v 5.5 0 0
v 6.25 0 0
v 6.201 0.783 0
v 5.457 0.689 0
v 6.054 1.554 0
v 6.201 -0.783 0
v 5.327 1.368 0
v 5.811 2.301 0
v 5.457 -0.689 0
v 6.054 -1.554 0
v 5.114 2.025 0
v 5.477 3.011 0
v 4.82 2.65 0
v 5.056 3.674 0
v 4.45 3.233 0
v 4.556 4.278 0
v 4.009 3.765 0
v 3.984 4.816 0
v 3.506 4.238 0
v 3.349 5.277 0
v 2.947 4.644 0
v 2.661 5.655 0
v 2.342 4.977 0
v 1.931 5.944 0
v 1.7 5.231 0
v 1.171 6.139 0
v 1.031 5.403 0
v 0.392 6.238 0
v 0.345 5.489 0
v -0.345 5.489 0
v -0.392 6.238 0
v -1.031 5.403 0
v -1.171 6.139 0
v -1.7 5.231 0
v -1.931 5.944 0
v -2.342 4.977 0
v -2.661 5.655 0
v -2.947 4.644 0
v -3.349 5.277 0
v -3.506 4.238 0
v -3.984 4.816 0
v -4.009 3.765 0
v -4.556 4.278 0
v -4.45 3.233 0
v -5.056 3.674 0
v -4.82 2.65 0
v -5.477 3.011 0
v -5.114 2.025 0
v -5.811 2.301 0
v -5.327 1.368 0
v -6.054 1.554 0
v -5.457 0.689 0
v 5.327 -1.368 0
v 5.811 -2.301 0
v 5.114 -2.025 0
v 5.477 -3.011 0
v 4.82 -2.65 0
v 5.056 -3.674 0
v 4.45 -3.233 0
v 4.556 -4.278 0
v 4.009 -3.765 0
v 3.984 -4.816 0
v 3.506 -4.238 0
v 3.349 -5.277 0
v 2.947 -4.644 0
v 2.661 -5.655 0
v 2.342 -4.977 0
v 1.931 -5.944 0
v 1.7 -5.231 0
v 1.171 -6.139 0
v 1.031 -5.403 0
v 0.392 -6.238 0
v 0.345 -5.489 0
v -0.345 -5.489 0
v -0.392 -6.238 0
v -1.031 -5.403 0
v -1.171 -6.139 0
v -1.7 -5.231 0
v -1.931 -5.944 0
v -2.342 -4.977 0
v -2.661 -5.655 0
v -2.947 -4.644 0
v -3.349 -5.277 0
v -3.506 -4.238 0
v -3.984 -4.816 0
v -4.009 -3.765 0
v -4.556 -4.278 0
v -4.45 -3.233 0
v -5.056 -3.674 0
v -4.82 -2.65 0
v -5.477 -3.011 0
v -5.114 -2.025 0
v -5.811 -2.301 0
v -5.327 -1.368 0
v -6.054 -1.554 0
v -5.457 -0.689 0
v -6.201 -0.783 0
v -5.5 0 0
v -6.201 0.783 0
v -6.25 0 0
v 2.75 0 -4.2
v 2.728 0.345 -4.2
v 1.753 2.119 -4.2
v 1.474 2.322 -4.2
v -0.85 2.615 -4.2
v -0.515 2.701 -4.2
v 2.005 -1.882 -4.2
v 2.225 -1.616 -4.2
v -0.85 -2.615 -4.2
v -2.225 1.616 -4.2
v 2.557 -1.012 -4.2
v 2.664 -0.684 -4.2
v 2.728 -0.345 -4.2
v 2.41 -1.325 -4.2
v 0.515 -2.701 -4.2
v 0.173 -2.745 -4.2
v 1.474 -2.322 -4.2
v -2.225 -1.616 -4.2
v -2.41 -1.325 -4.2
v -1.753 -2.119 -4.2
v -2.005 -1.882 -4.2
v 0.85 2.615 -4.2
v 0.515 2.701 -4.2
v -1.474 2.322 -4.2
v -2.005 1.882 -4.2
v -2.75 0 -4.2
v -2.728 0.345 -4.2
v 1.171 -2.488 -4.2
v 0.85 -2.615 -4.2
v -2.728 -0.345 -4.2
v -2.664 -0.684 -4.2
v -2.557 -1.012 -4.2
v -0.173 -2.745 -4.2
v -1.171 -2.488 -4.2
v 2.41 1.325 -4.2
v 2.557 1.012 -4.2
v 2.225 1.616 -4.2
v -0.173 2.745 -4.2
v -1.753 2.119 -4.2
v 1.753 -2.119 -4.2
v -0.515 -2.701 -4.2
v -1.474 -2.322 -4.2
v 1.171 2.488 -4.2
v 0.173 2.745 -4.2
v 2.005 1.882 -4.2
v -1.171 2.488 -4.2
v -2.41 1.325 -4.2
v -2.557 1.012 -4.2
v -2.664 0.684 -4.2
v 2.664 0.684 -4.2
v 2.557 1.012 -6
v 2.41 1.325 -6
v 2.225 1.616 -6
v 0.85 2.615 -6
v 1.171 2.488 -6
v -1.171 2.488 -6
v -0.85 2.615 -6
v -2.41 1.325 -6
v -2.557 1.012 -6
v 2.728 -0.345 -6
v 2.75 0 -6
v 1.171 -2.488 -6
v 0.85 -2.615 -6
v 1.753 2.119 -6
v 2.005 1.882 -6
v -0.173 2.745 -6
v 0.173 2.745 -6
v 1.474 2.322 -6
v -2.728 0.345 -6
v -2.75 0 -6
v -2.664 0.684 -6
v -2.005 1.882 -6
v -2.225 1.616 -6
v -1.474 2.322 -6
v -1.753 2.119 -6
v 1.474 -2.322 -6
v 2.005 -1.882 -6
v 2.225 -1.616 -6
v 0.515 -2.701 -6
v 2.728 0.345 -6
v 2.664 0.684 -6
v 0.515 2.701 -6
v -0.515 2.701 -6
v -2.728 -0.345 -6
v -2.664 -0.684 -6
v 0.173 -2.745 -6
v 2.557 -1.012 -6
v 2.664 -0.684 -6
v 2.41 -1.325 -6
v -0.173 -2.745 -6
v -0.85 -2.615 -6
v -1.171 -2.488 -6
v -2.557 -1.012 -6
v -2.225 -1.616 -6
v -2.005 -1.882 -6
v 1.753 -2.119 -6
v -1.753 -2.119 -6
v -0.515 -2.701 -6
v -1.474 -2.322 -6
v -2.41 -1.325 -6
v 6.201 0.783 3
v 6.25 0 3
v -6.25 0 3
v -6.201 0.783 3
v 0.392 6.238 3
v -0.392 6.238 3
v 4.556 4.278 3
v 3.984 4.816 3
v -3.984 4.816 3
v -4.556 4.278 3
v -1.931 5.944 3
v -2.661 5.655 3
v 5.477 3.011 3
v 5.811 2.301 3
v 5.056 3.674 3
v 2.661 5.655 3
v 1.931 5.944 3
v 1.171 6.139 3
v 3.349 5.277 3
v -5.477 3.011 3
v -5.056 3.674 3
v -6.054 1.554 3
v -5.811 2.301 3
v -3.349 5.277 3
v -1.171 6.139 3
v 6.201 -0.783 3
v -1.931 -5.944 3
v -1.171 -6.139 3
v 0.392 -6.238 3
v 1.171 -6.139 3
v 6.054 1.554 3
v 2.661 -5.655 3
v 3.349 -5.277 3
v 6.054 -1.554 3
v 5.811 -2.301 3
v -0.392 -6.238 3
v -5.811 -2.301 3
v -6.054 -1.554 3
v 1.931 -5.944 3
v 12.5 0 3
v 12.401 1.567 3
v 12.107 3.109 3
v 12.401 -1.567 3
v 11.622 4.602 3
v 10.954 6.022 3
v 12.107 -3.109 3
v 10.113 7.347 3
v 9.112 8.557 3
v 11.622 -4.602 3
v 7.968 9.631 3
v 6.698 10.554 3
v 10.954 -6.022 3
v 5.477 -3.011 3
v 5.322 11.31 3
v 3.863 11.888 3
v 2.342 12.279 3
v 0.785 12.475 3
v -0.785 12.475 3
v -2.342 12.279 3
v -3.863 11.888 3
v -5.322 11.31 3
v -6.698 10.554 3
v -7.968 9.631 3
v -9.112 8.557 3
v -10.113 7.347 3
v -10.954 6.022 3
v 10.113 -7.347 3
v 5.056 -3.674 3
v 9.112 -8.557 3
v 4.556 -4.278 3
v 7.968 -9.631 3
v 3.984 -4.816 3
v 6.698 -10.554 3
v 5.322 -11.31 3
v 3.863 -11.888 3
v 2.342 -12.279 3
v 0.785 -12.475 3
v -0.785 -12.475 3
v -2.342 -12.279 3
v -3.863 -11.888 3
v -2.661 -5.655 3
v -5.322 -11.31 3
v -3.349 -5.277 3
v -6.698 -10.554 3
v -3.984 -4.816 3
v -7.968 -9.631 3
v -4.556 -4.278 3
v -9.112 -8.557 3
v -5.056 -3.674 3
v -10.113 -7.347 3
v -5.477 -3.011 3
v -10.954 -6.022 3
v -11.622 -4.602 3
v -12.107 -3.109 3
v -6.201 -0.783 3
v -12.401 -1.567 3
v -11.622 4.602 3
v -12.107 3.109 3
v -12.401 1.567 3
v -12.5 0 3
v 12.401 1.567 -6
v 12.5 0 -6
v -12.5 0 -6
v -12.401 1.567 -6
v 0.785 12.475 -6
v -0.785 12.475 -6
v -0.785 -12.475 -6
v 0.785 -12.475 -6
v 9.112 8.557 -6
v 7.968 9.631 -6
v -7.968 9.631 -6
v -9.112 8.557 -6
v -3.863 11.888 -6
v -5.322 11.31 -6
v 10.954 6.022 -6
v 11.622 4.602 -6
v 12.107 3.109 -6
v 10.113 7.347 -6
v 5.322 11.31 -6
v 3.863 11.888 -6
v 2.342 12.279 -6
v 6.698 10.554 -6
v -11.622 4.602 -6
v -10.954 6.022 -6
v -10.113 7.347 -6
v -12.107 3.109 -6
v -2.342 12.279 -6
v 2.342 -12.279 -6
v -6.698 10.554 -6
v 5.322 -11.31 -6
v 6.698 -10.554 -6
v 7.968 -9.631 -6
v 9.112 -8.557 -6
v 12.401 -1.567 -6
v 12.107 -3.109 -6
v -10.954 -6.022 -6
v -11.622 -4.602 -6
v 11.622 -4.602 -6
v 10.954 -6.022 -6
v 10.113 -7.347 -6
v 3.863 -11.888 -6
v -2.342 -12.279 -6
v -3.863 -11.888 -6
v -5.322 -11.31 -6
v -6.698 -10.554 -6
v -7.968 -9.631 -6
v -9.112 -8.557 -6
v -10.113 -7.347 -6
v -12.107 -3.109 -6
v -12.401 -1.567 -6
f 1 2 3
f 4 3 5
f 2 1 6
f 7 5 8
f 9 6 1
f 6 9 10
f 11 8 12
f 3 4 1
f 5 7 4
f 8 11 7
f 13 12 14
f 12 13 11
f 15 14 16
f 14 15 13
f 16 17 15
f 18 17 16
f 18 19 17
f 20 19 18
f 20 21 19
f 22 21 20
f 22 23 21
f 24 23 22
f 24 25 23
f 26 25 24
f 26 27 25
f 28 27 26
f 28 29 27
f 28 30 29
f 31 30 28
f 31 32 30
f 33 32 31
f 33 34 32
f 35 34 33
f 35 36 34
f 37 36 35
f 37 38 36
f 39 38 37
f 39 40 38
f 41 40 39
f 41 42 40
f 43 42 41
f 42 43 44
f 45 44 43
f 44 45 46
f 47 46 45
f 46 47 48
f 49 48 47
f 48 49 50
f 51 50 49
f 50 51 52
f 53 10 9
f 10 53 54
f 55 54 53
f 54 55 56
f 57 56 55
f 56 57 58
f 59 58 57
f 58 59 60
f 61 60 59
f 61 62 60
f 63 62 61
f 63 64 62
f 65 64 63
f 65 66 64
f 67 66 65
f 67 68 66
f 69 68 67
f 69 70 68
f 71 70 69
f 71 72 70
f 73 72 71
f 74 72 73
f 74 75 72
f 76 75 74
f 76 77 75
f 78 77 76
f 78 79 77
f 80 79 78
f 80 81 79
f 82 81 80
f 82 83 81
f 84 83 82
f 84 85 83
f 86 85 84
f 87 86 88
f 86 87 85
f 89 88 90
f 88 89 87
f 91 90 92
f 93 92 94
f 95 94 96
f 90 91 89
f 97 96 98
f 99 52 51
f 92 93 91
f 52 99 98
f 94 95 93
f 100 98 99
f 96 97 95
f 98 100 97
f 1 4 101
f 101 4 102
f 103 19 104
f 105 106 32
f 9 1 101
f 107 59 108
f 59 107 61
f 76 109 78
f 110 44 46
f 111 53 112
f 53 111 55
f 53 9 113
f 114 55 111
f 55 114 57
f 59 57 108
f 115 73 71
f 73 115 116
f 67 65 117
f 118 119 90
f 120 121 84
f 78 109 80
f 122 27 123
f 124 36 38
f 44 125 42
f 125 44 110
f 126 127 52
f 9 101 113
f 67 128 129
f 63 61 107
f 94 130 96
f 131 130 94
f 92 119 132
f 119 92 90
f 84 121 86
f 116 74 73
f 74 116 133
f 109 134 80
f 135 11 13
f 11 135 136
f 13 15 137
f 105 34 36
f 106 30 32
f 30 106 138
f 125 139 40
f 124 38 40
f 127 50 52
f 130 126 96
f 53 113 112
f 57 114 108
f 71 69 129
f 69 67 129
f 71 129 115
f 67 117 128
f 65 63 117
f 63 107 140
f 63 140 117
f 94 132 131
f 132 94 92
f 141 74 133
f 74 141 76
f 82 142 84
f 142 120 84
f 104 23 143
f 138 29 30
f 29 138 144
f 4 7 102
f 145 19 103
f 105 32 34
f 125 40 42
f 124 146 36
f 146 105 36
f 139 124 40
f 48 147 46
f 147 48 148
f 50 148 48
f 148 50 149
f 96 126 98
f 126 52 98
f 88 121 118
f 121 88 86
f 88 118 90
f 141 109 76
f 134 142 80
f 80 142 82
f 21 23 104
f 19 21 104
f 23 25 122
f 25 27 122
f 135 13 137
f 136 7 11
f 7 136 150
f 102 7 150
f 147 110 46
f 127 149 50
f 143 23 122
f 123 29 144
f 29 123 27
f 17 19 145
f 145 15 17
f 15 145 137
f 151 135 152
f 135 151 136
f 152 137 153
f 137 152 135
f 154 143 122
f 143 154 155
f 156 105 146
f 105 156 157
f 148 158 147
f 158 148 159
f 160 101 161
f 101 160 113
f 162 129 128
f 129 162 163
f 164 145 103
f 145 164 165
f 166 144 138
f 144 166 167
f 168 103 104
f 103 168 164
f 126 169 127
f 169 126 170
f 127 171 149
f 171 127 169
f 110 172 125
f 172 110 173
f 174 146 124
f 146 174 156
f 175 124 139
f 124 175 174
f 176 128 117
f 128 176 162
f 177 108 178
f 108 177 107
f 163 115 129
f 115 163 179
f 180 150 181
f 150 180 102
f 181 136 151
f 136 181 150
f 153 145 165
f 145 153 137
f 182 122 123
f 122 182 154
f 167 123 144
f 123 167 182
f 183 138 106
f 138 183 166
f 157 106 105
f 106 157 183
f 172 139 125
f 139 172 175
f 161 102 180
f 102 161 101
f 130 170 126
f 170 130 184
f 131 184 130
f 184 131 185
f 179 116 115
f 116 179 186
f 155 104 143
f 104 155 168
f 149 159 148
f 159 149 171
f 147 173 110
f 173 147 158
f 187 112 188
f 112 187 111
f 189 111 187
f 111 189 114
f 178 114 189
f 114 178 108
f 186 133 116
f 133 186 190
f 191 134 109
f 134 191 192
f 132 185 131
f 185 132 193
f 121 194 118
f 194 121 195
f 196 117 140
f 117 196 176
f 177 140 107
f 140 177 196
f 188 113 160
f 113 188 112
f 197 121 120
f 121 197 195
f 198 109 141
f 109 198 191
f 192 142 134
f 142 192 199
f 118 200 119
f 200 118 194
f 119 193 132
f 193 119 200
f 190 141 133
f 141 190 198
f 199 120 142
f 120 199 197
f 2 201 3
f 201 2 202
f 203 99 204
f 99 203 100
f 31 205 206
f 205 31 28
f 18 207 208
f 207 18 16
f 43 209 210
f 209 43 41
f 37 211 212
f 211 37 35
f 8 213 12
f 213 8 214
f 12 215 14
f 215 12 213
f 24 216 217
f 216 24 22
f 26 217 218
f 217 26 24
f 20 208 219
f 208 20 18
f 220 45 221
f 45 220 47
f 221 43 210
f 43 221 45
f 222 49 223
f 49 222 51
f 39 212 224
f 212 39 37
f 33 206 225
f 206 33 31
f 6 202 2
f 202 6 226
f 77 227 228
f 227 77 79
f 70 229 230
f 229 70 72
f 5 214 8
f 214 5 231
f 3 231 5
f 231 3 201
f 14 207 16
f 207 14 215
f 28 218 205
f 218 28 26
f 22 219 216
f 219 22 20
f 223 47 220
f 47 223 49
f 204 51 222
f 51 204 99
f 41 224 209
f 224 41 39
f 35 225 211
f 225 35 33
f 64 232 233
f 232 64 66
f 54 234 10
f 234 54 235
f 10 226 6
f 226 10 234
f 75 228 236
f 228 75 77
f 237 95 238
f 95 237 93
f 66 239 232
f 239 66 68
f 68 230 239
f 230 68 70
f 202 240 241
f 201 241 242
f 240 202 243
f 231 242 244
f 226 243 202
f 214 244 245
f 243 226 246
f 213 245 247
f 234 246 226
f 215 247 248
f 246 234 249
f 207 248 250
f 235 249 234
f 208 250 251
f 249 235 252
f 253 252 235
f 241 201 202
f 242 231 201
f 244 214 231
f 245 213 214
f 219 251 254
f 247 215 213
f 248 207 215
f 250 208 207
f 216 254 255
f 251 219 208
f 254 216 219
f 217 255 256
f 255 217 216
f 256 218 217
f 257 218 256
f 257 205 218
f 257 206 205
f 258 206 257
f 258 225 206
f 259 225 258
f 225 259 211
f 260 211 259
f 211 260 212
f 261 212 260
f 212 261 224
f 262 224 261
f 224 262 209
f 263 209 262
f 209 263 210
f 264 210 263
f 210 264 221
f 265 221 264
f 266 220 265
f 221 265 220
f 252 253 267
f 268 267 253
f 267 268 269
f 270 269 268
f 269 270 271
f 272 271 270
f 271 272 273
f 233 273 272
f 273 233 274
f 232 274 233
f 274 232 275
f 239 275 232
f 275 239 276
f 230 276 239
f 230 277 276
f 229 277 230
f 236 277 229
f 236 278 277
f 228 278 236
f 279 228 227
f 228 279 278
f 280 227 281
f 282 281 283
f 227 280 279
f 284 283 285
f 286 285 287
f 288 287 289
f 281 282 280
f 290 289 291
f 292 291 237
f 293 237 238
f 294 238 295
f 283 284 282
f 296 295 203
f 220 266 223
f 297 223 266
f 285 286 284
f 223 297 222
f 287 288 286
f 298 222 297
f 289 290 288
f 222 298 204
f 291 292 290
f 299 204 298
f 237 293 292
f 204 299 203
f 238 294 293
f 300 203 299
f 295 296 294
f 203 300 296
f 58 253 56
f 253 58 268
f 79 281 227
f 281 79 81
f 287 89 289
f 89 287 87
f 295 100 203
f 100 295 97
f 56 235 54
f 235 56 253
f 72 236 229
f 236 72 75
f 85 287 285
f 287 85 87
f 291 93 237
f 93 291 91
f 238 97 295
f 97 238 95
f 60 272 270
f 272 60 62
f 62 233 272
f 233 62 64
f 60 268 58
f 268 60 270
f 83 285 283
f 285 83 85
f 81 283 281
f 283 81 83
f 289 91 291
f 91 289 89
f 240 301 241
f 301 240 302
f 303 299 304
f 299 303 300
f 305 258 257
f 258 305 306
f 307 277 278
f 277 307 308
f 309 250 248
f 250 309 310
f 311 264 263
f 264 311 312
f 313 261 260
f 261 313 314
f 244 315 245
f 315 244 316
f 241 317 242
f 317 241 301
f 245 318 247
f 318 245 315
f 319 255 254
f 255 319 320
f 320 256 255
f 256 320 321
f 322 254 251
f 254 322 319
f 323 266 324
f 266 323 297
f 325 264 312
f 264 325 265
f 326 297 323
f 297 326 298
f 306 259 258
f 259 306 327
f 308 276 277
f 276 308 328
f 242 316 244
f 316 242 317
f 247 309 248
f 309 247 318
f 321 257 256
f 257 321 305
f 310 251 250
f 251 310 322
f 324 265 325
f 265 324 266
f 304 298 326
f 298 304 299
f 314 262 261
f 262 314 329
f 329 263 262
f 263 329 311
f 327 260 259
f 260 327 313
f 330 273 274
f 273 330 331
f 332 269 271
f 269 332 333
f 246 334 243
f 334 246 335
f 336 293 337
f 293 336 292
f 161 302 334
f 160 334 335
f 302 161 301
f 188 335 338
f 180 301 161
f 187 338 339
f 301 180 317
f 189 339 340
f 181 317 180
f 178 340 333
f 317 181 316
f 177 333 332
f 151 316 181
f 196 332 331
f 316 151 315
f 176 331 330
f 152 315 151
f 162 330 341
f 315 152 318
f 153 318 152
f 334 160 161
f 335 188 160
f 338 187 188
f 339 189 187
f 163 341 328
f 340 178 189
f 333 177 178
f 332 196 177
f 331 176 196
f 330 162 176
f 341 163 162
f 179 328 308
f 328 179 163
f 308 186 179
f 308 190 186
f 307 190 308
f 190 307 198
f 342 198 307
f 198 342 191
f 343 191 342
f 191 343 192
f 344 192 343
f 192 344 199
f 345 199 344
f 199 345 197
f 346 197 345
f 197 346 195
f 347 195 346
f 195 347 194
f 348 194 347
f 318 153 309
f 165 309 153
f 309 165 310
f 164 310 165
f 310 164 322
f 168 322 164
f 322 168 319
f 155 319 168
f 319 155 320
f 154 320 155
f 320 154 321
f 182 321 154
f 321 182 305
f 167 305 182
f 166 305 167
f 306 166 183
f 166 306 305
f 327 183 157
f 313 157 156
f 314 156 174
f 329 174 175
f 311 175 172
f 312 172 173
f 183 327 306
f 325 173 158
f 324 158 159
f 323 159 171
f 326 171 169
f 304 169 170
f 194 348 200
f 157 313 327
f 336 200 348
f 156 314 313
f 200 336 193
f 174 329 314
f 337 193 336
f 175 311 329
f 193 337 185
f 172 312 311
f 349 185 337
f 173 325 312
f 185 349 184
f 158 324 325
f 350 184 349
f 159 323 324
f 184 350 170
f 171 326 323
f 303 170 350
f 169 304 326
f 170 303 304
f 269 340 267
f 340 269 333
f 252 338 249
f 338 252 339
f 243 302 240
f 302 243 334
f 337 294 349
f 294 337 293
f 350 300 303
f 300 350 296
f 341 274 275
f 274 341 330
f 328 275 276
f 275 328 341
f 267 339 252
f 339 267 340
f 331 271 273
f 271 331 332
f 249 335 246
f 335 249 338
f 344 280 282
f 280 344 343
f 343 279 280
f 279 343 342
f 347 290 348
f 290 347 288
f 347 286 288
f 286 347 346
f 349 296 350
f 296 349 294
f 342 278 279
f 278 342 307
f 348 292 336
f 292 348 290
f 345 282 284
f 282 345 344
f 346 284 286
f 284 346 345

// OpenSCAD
$fn = 50;

difference() {
	union() {
		translate(v = [0, 0, -6.0]) {
			cylinder(h = 9, r = 12.5);
		}
	}
	union() {
		translate(v = [0, 0, 0]) {
			rotate(a = [0, 0, 0]) {
				difference() {
					union() {
						translate(v = [0, 0, -9.0]) {
							cylinder(h = 9, r = 2.25);
						}
						translate(v = [0, 0, -4.2]) {
							cylinder(h = 4.2, r1 = 2.75, r2 = 5.5);
						}
						translate(v = [0, 0, -9.0]) {
							cylinder(h = 9, r = 2.75);
						}
						translate(v = [0, 0, -9.0]) {
							cylinder(h = 9, r = 2.25);
						}
					}
					union();
				}
			}
		}
		#cylinder(h = 3, r = 6.25);
	}
}
